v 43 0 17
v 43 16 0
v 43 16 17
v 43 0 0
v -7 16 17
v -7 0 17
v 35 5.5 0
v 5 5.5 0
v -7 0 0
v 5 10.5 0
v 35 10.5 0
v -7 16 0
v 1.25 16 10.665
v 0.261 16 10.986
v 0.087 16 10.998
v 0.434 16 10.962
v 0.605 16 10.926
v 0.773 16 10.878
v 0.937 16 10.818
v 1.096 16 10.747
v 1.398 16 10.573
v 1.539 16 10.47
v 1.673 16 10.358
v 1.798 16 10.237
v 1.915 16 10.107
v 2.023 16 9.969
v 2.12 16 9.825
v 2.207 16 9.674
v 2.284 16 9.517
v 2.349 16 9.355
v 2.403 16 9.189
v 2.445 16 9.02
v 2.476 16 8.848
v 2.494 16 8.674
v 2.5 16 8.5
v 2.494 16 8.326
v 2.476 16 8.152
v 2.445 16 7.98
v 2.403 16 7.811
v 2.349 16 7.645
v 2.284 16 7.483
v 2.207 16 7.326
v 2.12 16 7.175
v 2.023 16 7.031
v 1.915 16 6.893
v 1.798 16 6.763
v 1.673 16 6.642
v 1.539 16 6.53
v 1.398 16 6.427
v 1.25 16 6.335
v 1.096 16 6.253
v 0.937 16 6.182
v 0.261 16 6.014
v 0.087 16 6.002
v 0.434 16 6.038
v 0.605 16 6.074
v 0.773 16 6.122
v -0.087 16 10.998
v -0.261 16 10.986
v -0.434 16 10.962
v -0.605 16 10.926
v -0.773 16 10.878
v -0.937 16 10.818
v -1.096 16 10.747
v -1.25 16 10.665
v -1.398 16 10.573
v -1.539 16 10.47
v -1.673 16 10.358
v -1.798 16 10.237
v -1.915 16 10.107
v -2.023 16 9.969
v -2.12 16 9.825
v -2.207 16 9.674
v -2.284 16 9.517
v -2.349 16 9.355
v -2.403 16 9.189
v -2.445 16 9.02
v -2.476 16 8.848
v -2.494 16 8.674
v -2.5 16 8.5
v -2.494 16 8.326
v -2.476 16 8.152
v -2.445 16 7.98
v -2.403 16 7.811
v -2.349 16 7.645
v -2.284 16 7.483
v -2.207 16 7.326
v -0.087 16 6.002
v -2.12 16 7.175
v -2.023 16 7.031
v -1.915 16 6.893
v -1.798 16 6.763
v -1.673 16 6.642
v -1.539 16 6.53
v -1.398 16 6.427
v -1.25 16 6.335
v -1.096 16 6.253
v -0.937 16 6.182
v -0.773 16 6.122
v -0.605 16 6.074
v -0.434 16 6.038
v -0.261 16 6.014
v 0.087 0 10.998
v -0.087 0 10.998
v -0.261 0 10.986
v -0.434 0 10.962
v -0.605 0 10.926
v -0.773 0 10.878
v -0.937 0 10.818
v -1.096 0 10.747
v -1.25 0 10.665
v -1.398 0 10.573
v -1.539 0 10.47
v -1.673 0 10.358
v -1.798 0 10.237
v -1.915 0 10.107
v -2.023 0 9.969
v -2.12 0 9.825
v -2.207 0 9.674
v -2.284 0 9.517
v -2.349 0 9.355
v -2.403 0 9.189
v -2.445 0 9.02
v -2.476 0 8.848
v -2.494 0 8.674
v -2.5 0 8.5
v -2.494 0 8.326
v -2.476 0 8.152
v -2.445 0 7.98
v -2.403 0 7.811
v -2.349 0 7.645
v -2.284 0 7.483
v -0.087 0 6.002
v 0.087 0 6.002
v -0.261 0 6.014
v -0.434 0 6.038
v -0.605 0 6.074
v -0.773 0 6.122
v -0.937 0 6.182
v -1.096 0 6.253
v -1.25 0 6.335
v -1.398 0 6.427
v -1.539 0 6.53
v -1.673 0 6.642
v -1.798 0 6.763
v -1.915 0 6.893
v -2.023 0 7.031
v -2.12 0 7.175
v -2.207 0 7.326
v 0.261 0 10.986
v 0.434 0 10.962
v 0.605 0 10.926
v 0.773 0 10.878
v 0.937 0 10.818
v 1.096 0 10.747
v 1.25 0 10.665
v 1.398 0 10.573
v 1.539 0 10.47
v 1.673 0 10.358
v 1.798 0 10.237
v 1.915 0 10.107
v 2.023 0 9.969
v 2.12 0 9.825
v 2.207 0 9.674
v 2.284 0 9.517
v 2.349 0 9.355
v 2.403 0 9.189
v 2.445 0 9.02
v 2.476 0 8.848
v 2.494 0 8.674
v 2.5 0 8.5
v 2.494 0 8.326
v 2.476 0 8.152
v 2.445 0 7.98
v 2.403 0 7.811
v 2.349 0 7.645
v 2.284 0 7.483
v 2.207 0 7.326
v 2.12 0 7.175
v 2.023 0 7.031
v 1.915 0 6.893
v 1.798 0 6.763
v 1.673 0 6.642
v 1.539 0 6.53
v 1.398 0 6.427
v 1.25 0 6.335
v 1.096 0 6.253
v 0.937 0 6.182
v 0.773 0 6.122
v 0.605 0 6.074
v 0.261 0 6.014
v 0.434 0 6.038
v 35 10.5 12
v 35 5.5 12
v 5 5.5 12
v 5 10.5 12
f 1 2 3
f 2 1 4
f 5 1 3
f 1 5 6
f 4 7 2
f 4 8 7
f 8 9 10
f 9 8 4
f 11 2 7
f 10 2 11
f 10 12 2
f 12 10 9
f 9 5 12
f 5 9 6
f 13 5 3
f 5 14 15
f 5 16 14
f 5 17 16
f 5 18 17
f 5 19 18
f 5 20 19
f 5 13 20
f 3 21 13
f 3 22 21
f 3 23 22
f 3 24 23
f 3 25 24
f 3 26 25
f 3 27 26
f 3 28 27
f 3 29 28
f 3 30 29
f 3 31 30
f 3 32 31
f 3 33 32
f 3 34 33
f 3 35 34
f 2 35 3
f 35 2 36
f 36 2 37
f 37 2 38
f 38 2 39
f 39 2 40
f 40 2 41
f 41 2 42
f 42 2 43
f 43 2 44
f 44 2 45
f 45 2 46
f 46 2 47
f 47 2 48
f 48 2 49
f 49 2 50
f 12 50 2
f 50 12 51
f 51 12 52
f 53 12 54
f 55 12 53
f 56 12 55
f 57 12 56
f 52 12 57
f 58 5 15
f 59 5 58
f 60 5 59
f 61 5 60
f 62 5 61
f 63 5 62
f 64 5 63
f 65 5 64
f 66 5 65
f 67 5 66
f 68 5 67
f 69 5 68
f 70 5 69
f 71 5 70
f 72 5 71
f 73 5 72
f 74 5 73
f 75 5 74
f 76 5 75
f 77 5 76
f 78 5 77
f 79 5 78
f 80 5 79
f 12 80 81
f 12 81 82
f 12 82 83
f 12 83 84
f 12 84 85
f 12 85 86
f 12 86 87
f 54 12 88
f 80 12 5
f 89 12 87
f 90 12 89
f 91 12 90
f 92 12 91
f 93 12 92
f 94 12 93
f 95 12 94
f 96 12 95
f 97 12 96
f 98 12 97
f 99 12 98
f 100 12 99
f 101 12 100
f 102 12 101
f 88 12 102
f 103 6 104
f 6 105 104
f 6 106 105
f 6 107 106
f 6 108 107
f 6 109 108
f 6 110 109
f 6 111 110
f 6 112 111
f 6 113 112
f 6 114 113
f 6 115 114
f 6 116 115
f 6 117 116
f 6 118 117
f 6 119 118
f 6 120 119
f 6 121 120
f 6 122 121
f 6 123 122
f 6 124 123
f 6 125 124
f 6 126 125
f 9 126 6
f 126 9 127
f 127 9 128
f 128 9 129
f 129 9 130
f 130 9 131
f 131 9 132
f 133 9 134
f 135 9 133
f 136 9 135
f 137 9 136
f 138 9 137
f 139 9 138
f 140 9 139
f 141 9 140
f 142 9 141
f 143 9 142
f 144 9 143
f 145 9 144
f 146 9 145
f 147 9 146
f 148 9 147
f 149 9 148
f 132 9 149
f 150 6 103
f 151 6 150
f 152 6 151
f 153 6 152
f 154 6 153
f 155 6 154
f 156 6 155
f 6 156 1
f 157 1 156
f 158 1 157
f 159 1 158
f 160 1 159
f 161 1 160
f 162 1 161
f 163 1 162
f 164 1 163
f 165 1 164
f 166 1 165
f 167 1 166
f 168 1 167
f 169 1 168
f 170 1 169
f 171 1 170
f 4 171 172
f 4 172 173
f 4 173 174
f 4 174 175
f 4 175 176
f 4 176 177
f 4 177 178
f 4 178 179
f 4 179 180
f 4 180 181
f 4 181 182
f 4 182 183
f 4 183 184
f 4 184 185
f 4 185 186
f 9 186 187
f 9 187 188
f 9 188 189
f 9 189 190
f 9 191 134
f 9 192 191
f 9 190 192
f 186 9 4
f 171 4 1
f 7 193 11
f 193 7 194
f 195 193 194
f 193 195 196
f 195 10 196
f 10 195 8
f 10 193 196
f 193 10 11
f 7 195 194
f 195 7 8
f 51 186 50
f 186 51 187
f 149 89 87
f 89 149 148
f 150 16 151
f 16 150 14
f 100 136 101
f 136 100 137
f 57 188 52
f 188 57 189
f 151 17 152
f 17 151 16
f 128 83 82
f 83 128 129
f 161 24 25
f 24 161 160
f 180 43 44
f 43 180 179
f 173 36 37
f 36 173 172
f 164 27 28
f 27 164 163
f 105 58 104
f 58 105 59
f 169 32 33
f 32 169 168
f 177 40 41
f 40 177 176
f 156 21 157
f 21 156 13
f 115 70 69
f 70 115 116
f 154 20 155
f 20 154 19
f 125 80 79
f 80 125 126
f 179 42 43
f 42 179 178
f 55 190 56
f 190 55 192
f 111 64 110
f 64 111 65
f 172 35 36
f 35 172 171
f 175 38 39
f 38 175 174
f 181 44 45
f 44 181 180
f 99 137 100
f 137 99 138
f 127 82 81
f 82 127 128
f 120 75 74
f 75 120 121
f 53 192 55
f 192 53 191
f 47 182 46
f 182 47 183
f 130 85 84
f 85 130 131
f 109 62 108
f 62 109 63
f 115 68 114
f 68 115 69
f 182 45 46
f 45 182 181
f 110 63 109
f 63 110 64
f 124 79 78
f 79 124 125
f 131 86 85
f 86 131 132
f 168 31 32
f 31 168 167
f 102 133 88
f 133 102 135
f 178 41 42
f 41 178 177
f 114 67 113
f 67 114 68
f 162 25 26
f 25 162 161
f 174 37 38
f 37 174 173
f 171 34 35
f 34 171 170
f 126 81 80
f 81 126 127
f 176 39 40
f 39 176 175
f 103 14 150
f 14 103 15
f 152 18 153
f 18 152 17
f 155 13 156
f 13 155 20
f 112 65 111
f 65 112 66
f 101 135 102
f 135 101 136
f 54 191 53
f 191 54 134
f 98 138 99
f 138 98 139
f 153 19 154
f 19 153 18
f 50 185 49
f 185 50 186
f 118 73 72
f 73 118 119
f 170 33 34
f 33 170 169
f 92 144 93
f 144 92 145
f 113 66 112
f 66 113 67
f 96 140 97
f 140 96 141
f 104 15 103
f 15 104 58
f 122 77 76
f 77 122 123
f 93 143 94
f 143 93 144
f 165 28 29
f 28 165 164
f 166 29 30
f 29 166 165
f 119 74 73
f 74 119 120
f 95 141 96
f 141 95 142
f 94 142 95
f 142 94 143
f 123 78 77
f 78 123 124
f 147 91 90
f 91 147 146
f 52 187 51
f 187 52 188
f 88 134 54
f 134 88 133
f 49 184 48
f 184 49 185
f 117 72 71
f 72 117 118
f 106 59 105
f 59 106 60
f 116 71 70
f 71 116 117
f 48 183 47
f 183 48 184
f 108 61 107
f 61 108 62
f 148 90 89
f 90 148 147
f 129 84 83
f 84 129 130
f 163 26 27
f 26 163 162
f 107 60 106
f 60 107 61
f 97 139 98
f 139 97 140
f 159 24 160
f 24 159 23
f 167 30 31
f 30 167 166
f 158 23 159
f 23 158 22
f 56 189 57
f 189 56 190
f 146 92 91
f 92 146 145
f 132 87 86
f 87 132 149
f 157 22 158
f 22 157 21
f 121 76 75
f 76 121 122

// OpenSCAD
$fn = 90;

height = 17;
width = 16;

difference(){
	translate([-7, 0, 0])
		cube([50, width, height]);
	slitWidth = 5;
	translate([5, width/2-slitWidth/2, 0]){
		#cube([30, 5, 12]);
	}
	translate([0, 0, 17/2]){
		rotate([-90, 0 , 0])
			#cylinder(d=5, h=width);
	}
}
